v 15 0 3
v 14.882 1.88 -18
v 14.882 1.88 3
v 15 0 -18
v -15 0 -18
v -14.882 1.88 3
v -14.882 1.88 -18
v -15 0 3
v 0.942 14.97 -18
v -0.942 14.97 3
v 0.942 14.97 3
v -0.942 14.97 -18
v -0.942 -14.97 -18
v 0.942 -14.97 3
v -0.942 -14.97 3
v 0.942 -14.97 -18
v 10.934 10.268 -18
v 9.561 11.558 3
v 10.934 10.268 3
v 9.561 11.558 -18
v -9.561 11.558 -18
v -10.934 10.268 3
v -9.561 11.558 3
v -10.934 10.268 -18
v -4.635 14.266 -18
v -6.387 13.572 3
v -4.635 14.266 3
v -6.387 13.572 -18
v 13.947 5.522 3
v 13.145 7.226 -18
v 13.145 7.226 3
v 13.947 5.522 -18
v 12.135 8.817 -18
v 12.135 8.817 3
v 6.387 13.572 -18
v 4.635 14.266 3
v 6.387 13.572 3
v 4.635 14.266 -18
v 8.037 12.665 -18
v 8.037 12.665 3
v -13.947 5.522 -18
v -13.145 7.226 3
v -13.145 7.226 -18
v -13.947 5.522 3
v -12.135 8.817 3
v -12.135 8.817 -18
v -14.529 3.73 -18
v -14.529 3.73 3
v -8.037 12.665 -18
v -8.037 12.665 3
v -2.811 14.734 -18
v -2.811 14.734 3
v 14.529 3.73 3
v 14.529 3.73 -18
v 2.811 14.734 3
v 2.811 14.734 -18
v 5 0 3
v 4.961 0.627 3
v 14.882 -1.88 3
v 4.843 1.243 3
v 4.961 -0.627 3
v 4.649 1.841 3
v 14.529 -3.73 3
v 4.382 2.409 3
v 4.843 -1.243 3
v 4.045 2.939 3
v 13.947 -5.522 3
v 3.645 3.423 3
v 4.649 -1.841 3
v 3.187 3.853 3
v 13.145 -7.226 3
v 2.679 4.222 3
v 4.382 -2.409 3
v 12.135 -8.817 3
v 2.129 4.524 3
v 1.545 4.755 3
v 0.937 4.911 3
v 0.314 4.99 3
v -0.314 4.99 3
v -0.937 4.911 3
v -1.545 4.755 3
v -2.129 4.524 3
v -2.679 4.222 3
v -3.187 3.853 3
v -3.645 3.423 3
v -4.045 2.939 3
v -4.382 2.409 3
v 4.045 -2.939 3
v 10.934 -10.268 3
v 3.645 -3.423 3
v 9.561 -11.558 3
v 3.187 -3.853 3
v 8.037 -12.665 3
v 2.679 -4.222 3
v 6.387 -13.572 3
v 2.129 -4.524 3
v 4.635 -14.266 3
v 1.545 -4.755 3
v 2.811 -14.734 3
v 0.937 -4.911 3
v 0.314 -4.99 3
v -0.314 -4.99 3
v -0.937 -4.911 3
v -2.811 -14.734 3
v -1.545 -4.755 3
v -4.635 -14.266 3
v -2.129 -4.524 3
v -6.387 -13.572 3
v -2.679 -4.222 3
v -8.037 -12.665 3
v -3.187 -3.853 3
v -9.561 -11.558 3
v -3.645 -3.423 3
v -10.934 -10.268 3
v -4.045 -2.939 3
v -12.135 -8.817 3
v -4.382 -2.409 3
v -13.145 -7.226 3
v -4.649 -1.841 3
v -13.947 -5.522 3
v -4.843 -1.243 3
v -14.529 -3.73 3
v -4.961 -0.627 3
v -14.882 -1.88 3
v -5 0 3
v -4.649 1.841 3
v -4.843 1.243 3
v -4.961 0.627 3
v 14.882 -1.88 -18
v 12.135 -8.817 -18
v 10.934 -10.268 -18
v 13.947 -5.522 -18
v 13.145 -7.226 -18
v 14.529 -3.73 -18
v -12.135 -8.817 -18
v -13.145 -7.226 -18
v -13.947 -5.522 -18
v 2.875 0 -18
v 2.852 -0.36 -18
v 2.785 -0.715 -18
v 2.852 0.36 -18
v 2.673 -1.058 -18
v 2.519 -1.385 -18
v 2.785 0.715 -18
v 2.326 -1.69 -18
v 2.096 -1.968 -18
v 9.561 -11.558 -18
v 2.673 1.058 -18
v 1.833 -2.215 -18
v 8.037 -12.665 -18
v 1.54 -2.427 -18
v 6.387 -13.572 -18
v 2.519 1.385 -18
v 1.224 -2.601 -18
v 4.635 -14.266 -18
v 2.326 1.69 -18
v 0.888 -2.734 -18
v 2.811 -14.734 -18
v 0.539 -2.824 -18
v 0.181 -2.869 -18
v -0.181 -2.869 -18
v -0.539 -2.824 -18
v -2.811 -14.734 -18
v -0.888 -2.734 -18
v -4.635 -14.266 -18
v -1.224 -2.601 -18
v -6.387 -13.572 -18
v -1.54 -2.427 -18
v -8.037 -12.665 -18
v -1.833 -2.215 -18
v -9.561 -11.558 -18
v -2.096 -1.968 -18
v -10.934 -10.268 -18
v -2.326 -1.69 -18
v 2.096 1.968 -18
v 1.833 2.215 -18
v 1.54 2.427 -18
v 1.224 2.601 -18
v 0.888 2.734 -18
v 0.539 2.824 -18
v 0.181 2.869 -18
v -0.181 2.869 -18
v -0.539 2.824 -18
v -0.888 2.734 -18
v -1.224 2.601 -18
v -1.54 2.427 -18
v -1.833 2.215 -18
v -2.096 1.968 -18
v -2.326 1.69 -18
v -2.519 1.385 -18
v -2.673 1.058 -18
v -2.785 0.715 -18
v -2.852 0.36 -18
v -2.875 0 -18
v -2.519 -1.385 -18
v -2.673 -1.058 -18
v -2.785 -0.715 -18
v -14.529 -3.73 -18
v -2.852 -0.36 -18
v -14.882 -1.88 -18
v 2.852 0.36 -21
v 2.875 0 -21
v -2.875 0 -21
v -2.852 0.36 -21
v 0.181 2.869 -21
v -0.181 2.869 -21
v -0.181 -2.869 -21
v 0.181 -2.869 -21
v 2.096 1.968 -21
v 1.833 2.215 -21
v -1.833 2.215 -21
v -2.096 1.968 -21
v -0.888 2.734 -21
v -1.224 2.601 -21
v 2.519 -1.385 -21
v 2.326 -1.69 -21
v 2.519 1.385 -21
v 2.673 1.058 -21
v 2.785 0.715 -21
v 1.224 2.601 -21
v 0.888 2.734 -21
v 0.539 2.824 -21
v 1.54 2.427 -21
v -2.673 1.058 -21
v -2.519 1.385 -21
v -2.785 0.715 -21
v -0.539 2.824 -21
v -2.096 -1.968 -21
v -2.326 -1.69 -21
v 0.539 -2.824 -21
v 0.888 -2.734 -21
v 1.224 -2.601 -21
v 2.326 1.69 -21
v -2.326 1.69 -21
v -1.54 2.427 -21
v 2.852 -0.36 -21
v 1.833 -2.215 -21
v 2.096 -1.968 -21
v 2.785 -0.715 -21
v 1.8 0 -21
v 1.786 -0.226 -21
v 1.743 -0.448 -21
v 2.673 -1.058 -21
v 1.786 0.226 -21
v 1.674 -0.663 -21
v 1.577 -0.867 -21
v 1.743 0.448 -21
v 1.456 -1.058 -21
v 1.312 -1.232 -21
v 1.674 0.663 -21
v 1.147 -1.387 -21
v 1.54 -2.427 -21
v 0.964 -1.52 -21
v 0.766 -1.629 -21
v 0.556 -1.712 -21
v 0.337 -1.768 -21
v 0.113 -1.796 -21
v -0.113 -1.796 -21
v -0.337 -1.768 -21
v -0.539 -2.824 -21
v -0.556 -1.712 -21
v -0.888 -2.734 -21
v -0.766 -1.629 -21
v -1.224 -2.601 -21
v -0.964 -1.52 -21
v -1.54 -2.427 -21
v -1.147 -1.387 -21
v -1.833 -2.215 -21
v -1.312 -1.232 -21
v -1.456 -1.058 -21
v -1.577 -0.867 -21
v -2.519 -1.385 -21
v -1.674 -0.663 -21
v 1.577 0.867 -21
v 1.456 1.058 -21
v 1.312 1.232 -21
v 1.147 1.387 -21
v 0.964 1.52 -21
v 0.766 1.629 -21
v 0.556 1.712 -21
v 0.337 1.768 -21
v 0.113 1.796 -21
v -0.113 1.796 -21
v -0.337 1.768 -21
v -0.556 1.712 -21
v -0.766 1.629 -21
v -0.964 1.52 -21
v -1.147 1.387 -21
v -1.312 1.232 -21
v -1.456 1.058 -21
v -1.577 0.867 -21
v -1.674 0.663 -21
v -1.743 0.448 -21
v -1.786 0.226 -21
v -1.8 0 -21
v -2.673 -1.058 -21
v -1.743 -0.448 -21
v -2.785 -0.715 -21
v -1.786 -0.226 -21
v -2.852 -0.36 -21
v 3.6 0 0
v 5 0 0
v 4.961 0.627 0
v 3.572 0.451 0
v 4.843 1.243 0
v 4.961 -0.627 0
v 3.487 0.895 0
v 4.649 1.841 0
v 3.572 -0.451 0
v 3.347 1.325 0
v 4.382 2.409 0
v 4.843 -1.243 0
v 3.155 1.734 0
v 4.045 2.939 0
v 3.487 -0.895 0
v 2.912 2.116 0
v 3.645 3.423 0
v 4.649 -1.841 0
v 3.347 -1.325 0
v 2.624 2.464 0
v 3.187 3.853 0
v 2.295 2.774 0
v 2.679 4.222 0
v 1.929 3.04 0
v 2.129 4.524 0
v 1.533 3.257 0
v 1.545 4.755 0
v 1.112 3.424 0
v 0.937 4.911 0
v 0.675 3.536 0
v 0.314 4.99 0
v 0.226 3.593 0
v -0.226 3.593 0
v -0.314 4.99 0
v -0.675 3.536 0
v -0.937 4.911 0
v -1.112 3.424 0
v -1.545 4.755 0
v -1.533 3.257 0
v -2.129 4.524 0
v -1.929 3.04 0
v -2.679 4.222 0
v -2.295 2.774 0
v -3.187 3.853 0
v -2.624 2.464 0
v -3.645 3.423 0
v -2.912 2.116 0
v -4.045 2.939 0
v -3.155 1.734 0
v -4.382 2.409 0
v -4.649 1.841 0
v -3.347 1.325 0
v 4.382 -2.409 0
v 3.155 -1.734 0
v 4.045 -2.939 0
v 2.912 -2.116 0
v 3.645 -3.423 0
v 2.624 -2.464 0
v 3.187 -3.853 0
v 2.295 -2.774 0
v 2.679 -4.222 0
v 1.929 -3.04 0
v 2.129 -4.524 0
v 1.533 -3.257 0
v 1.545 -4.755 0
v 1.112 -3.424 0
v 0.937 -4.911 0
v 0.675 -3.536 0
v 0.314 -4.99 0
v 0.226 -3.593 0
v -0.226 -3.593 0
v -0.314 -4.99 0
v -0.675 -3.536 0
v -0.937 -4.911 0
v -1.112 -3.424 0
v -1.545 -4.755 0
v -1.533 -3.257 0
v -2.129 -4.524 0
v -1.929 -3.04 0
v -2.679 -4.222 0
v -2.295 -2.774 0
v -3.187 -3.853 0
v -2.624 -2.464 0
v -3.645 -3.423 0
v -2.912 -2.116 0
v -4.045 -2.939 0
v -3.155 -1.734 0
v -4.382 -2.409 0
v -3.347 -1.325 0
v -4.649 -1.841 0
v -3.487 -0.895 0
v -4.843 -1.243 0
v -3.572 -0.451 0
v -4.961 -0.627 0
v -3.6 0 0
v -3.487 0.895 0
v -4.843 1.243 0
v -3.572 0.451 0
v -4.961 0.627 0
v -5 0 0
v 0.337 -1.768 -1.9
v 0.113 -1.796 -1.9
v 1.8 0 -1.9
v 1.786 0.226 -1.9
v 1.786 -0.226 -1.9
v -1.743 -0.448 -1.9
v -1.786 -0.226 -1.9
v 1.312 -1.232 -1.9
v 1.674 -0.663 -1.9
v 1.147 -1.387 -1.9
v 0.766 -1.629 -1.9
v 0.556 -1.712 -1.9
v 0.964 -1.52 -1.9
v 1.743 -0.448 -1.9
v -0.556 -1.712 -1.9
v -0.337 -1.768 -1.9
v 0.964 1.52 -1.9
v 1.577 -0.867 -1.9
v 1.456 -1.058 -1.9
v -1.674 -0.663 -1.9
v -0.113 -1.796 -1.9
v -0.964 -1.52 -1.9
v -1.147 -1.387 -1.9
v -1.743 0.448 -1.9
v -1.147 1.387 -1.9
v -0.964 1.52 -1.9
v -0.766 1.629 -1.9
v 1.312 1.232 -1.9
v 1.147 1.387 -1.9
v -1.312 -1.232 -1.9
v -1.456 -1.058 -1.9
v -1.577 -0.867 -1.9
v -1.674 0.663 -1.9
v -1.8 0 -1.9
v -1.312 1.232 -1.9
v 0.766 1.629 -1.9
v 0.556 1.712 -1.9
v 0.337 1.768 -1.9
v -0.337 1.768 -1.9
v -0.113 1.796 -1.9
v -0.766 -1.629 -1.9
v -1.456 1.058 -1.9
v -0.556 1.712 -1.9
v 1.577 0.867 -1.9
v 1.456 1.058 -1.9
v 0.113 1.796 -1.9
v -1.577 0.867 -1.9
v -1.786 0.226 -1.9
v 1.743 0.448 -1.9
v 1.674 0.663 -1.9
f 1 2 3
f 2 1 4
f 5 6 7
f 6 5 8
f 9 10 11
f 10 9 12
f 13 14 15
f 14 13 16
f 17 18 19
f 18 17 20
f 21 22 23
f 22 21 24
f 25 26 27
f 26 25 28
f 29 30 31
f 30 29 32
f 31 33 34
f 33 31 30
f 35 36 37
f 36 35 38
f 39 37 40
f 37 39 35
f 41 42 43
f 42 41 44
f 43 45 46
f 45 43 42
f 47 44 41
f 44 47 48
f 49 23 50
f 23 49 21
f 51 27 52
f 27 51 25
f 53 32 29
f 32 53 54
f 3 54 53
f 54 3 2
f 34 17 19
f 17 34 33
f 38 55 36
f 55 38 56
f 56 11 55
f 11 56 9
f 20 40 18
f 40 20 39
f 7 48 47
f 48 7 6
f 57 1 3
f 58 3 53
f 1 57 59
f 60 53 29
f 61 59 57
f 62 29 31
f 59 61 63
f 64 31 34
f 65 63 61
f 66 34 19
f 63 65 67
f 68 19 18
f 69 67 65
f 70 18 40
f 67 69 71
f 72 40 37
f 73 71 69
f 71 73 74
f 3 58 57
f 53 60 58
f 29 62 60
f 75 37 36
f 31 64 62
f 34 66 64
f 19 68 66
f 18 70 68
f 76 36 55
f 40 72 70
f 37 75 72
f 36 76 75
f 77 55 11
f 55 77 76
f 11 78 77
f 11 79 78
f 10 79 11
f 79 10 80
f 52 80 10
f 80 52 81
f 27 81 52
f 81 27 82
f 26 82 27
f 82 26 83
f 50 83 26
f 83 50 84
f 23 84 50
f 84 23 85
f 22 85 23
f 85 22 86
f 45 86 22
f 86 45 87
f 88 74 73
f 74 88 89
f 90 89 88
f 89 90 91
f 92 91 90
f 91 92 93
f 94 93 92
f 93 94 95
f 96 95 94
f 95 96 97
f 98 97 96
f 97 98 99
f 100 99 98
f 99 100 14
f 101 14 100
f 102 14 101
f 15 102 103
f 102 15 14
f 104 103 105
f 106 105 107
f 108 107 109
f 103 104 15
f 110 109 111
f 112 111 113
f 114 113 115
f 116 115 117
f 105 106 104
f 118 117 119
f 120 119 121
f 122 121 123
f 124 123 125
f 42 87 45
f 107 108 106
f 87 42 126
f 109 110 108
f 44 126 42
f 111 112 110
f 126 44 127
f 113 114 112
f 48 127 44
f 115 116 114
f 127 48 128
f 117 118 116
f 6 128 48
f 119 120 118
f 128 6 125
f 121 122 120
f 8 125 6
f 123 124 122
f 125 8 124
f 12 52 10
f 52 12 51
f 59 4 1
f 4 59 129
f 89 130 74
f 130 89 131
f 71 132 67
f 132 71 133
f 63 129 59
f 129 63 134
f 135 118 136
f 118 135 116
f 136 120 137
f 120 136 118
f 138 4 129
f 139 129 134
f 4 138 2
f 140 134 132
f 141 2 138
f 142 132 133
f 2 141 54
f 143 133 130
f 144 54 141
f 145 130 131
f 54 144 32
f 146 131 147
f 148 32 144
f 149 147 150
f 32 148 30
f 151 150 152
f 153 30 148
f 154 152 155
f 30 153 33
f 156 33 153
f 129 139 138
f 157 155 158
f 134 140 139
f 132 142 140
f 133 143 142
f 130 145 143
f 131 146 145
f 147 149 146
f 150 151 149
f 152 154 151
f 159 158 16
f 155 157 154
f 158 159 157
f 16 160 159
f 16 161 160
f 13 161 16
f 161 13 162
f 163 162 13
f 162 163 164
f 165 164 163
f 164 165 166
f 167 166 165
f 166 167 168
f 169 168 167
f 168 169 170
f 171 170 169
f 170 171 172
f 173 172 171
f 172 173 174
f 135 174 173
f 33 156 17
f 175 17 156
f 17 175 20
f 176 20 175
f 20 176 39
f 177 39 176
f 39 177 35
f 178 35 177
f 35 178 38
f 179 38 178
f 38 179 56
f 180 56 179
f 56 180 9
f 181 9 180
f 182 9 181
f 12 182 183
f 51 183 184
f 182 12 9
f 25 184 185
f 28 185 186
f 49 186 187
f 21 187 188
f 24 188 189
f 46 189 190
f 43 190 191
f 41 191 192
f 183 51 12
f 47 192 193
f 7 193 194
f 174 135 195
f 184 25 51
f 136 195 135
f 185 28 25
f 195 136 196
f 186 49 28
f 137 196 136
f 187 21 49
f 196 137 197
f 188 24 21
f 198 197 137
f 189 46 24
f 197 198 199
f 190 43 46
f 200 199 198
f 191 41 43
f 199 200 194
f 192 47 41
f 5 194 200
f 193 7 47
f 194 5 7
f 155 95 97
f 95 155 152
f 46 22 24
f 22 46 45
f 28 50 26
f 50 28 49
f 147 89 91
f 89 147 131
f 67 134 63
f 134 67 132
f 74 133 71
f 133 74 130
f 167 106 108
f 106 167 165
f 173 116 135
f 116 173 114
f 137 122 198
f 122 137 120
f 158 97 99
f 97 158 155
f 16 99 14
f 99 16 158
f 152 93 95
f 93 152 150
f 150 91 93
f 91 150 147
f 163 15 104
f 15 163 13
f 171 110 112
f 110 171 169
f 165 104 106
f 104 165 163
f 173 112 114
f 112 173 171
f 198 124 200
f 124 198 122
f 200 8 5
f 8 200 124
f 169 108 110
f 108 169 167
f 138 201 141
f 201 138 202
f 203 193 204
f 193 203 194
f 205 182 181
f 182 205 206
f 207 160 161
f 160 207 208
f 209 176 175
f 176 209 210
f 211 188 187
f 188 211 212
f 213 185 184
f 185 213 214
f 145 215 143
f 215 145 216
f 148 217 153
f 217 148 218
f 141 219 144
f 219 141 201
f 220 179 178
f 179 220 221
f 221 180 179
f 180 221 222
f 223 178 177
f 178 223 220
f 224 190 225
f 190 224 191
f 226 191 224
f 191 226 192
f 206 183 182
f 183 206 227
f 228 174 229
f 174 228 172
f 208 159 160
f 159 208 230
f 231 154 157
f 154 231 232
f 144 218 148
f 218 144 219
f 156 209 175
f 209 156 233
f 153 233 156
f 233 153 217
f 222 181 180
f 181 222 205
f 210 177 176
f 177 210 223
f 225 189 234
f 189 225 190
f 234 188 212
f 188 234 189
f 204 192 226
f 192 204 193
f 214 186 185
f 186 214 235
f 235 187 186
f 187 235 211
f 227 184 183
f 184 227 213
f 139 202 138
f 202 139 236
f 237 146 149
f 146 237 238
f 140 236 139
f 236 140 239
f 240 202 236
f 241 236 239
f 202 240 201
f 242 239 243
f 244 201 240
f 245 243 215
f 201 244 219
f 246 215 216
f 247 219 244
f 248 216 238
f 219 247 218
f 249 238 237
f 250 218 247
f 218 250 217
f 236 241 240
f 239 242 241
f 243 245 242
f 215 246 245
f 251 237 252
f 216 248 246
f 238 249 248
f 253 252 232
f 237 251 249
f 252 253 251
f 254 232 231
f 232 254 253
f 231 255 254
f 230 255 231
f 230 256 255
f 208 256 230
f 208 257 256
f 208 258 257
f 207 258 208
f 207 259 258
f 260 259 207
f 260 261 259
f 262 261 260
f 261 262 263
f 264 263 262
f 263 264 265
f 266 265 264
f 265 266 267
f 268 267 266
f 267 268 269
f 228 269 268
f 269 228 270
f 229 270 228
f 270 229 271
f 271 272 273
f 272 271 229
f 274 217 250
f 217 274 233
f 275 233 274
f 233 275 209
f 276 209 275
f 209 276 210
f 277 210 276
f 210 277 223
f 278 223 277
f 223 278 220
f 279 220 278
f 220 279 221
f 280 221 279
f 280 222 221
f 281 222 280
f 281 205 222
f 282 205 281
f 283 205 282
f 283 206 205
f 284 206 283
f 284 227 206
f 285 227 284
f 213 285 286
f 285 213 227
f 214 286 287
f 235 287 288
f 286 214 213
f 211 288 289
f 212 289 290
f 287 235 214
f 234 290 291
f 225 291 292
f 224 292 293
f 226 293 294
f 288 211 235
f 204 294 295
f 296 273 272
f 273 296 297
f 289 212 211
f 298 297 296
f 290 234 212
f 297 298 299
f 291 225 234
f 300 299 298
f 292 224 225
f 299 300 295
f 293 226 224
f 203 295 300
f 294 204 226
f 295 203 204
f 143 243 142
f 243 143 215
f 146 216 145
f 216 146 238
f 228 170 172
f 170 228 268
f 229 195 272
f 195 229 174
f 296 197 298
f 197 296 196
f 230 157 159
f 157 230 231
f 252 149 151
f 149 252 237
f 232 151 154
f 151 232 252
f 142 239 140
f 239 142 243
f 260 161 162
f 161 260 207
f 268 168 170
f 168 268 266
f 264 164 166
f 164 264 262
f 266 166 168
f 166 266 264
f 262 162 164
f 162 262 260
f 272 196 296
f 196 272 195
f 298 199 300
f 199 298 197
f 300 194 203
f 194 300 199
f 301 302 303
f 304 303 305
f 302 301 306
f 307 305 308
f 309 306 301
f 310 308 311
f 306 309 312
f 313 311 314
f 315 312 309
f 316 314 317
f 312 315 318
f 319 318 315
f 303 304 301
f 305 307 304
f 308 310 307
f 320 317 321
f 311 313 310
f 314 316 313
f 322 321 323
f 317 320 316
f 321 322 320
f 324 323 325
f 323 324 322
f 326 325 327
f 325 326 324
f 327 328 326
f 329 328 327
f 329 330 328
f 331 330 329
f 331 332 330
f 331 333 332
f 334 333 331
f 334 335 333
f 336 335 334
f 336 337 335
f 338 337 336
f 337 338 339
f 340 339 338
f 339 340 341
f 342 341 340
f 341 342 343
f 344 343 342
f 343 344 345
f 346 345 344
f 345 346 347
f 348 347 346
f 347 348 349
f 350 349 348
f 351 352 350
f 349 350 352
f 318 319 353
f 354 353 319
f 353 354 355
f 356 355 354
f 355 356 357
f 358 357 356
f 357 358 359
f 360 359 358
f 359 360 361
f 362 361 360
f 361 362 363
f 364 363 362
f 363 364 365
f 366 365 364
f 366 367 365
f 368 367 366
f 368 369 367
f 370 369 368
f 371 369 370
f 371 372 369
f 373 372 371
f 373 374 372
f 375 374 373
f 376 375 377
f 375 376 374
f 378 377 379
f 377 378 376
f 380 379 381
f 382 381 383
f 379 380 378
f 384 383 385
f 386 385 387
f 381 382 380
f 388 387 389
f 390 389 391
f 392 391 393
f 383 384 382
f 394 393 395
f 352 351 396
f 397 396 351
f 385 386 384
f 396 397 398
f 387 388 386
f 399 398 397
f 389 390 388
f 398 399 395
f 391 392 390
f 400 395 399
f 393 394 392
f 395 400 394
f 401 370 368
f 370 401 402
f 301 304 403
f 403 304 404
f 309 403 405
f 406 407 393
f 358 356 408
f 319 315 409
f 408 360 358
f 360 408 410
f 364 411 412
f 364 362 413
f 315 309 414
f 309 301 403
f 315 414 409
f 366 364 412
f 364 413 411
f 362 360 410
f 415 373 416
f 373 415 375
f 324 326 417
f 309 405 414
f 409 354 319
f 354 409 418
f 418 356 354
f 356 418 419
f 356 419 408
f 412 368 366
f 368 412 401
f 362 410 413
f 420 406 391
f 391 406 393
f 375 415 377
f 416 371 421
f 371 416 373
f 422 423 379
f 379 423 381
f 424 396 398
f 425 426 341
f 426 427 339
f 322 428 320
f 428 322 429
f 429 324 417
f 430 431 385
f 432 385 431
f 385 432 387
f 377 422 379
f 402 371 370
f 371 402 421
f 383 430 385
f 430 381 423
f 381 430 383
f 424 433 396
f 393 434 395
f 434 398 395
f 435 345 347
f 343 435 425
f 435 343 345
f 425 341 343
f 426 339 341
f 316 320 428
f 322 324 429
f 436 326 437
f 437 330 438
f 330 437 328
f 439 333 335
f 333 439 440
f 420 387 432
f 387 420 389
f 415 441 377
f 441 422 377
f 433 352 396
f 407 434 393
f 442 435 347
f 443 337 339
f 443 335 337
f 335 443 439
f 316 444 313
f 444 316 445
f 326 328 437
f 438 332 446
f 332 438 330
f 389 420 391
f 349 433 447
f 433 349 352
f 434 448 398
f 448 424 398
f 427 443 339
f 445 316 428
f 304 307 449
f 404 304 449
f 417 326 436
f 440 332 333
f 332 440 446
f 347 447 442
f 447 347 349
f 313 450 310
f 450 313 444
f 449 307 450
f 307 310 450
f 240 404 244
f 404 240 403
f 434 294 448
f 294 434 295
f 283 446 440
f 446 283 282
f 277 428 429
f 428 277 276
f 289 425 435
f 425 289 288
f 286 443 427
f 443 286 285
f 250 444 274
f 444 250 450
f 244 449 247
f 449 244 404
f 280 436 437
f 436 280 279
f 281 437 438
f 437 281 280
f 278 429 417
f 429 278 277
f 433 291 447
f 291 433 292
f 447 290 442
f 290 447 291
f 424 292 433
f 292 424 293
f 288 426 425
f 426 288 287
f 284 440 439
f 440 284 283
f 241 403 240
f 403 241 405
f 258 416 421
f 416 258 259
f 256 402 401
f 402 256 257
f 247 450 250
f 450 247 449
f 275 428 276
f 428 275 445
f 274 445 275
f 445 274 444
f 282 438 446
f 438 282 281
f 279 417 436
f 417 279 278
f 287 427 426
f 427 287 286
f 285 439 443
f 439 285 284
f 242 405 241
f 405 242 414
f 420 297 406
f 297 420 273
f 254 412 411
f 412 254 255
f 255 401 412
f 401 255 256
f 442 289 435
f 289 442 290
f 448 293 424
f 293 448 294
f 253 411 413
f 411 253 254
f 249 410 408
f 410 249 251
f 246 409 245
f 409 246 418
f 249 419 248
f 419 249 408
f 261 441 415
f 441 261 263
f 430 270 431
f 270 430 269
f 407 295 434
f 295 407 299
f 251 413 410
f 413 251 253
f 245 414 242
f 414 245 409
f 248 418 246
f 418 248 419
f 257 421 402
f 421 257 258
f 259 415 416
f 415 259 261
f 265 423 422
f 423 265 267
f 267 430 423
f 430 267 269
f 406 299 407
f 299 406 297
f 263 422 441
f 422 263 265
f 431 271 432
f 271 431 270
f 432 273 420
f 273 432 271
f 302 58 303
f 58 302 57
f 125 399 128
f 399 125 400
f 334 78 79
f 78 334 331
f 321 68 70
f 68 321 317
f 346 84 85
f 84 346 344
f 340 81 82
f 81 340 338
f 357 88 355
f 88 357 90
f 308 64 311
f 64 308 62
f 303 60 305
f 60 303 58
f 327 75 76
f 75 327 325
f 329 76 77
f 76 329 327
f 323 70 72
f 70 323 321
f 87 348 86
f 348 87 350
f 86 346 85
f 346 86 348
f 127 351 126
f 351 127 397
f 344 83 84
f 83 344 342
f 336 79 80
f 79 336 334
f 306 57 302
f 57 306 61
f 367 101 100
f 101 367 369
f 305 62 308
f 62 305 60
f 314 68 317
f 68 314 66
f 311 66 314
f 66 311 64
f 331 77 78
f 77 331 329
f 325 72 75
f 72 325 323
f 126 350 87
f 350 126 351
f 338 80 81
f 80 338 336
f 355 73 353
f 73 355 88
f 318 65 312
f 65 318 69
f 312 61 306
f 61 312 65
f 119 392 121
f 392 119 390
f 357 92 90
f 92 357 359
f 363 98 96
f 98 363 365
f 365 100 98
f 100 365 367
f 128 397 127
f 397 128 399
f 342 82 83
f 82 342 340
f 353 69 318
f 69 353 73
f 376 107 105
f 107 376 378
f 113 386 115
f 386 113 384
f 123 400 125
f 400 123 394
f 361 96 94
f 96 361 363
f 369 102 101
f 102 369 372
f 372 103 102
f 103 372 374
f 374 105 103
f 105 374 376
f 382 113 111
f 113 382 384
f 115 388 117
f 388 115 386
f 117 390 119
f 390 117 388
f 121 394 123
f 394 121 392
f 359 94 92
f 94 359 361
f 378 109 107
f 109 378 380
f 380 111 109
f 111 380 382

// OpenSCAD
$fn = 50;

difference() {
	union() {
		translate(v = [0, 0, -18.0]) {
			cylinder(h = 21, r = 15.0);
		}
		#translate(v = [0, 0, -21.0]) {
			cylinder(h = 21, r = 2.875);
		}
	}
	union() {
		translate(v = [0, 0, 0]) {
			rotate(a = [0, 0, 0]) {
				difference() {
					union() {
						translate(v = [0, 0, -21.0]) {
							cylinder(h = 21, r = 1.5);
						}
						translate(v = [0, 0, -1.9]) {
							cylinder(h = 1.9, r1 = 1.8, r2 = 3.6);
						}
						translate(v = [0, 0, -21.0]) {
							cylinder(h = 21, r = 1.8);
						}
						translate(v = [0, 0, -21.0]) {
							cylinder(h = 21, r = 1.5);
						}
					}
					union();
				}
			}
		}
		#cylinder(h = 3, r = 5.0);
	}
}
